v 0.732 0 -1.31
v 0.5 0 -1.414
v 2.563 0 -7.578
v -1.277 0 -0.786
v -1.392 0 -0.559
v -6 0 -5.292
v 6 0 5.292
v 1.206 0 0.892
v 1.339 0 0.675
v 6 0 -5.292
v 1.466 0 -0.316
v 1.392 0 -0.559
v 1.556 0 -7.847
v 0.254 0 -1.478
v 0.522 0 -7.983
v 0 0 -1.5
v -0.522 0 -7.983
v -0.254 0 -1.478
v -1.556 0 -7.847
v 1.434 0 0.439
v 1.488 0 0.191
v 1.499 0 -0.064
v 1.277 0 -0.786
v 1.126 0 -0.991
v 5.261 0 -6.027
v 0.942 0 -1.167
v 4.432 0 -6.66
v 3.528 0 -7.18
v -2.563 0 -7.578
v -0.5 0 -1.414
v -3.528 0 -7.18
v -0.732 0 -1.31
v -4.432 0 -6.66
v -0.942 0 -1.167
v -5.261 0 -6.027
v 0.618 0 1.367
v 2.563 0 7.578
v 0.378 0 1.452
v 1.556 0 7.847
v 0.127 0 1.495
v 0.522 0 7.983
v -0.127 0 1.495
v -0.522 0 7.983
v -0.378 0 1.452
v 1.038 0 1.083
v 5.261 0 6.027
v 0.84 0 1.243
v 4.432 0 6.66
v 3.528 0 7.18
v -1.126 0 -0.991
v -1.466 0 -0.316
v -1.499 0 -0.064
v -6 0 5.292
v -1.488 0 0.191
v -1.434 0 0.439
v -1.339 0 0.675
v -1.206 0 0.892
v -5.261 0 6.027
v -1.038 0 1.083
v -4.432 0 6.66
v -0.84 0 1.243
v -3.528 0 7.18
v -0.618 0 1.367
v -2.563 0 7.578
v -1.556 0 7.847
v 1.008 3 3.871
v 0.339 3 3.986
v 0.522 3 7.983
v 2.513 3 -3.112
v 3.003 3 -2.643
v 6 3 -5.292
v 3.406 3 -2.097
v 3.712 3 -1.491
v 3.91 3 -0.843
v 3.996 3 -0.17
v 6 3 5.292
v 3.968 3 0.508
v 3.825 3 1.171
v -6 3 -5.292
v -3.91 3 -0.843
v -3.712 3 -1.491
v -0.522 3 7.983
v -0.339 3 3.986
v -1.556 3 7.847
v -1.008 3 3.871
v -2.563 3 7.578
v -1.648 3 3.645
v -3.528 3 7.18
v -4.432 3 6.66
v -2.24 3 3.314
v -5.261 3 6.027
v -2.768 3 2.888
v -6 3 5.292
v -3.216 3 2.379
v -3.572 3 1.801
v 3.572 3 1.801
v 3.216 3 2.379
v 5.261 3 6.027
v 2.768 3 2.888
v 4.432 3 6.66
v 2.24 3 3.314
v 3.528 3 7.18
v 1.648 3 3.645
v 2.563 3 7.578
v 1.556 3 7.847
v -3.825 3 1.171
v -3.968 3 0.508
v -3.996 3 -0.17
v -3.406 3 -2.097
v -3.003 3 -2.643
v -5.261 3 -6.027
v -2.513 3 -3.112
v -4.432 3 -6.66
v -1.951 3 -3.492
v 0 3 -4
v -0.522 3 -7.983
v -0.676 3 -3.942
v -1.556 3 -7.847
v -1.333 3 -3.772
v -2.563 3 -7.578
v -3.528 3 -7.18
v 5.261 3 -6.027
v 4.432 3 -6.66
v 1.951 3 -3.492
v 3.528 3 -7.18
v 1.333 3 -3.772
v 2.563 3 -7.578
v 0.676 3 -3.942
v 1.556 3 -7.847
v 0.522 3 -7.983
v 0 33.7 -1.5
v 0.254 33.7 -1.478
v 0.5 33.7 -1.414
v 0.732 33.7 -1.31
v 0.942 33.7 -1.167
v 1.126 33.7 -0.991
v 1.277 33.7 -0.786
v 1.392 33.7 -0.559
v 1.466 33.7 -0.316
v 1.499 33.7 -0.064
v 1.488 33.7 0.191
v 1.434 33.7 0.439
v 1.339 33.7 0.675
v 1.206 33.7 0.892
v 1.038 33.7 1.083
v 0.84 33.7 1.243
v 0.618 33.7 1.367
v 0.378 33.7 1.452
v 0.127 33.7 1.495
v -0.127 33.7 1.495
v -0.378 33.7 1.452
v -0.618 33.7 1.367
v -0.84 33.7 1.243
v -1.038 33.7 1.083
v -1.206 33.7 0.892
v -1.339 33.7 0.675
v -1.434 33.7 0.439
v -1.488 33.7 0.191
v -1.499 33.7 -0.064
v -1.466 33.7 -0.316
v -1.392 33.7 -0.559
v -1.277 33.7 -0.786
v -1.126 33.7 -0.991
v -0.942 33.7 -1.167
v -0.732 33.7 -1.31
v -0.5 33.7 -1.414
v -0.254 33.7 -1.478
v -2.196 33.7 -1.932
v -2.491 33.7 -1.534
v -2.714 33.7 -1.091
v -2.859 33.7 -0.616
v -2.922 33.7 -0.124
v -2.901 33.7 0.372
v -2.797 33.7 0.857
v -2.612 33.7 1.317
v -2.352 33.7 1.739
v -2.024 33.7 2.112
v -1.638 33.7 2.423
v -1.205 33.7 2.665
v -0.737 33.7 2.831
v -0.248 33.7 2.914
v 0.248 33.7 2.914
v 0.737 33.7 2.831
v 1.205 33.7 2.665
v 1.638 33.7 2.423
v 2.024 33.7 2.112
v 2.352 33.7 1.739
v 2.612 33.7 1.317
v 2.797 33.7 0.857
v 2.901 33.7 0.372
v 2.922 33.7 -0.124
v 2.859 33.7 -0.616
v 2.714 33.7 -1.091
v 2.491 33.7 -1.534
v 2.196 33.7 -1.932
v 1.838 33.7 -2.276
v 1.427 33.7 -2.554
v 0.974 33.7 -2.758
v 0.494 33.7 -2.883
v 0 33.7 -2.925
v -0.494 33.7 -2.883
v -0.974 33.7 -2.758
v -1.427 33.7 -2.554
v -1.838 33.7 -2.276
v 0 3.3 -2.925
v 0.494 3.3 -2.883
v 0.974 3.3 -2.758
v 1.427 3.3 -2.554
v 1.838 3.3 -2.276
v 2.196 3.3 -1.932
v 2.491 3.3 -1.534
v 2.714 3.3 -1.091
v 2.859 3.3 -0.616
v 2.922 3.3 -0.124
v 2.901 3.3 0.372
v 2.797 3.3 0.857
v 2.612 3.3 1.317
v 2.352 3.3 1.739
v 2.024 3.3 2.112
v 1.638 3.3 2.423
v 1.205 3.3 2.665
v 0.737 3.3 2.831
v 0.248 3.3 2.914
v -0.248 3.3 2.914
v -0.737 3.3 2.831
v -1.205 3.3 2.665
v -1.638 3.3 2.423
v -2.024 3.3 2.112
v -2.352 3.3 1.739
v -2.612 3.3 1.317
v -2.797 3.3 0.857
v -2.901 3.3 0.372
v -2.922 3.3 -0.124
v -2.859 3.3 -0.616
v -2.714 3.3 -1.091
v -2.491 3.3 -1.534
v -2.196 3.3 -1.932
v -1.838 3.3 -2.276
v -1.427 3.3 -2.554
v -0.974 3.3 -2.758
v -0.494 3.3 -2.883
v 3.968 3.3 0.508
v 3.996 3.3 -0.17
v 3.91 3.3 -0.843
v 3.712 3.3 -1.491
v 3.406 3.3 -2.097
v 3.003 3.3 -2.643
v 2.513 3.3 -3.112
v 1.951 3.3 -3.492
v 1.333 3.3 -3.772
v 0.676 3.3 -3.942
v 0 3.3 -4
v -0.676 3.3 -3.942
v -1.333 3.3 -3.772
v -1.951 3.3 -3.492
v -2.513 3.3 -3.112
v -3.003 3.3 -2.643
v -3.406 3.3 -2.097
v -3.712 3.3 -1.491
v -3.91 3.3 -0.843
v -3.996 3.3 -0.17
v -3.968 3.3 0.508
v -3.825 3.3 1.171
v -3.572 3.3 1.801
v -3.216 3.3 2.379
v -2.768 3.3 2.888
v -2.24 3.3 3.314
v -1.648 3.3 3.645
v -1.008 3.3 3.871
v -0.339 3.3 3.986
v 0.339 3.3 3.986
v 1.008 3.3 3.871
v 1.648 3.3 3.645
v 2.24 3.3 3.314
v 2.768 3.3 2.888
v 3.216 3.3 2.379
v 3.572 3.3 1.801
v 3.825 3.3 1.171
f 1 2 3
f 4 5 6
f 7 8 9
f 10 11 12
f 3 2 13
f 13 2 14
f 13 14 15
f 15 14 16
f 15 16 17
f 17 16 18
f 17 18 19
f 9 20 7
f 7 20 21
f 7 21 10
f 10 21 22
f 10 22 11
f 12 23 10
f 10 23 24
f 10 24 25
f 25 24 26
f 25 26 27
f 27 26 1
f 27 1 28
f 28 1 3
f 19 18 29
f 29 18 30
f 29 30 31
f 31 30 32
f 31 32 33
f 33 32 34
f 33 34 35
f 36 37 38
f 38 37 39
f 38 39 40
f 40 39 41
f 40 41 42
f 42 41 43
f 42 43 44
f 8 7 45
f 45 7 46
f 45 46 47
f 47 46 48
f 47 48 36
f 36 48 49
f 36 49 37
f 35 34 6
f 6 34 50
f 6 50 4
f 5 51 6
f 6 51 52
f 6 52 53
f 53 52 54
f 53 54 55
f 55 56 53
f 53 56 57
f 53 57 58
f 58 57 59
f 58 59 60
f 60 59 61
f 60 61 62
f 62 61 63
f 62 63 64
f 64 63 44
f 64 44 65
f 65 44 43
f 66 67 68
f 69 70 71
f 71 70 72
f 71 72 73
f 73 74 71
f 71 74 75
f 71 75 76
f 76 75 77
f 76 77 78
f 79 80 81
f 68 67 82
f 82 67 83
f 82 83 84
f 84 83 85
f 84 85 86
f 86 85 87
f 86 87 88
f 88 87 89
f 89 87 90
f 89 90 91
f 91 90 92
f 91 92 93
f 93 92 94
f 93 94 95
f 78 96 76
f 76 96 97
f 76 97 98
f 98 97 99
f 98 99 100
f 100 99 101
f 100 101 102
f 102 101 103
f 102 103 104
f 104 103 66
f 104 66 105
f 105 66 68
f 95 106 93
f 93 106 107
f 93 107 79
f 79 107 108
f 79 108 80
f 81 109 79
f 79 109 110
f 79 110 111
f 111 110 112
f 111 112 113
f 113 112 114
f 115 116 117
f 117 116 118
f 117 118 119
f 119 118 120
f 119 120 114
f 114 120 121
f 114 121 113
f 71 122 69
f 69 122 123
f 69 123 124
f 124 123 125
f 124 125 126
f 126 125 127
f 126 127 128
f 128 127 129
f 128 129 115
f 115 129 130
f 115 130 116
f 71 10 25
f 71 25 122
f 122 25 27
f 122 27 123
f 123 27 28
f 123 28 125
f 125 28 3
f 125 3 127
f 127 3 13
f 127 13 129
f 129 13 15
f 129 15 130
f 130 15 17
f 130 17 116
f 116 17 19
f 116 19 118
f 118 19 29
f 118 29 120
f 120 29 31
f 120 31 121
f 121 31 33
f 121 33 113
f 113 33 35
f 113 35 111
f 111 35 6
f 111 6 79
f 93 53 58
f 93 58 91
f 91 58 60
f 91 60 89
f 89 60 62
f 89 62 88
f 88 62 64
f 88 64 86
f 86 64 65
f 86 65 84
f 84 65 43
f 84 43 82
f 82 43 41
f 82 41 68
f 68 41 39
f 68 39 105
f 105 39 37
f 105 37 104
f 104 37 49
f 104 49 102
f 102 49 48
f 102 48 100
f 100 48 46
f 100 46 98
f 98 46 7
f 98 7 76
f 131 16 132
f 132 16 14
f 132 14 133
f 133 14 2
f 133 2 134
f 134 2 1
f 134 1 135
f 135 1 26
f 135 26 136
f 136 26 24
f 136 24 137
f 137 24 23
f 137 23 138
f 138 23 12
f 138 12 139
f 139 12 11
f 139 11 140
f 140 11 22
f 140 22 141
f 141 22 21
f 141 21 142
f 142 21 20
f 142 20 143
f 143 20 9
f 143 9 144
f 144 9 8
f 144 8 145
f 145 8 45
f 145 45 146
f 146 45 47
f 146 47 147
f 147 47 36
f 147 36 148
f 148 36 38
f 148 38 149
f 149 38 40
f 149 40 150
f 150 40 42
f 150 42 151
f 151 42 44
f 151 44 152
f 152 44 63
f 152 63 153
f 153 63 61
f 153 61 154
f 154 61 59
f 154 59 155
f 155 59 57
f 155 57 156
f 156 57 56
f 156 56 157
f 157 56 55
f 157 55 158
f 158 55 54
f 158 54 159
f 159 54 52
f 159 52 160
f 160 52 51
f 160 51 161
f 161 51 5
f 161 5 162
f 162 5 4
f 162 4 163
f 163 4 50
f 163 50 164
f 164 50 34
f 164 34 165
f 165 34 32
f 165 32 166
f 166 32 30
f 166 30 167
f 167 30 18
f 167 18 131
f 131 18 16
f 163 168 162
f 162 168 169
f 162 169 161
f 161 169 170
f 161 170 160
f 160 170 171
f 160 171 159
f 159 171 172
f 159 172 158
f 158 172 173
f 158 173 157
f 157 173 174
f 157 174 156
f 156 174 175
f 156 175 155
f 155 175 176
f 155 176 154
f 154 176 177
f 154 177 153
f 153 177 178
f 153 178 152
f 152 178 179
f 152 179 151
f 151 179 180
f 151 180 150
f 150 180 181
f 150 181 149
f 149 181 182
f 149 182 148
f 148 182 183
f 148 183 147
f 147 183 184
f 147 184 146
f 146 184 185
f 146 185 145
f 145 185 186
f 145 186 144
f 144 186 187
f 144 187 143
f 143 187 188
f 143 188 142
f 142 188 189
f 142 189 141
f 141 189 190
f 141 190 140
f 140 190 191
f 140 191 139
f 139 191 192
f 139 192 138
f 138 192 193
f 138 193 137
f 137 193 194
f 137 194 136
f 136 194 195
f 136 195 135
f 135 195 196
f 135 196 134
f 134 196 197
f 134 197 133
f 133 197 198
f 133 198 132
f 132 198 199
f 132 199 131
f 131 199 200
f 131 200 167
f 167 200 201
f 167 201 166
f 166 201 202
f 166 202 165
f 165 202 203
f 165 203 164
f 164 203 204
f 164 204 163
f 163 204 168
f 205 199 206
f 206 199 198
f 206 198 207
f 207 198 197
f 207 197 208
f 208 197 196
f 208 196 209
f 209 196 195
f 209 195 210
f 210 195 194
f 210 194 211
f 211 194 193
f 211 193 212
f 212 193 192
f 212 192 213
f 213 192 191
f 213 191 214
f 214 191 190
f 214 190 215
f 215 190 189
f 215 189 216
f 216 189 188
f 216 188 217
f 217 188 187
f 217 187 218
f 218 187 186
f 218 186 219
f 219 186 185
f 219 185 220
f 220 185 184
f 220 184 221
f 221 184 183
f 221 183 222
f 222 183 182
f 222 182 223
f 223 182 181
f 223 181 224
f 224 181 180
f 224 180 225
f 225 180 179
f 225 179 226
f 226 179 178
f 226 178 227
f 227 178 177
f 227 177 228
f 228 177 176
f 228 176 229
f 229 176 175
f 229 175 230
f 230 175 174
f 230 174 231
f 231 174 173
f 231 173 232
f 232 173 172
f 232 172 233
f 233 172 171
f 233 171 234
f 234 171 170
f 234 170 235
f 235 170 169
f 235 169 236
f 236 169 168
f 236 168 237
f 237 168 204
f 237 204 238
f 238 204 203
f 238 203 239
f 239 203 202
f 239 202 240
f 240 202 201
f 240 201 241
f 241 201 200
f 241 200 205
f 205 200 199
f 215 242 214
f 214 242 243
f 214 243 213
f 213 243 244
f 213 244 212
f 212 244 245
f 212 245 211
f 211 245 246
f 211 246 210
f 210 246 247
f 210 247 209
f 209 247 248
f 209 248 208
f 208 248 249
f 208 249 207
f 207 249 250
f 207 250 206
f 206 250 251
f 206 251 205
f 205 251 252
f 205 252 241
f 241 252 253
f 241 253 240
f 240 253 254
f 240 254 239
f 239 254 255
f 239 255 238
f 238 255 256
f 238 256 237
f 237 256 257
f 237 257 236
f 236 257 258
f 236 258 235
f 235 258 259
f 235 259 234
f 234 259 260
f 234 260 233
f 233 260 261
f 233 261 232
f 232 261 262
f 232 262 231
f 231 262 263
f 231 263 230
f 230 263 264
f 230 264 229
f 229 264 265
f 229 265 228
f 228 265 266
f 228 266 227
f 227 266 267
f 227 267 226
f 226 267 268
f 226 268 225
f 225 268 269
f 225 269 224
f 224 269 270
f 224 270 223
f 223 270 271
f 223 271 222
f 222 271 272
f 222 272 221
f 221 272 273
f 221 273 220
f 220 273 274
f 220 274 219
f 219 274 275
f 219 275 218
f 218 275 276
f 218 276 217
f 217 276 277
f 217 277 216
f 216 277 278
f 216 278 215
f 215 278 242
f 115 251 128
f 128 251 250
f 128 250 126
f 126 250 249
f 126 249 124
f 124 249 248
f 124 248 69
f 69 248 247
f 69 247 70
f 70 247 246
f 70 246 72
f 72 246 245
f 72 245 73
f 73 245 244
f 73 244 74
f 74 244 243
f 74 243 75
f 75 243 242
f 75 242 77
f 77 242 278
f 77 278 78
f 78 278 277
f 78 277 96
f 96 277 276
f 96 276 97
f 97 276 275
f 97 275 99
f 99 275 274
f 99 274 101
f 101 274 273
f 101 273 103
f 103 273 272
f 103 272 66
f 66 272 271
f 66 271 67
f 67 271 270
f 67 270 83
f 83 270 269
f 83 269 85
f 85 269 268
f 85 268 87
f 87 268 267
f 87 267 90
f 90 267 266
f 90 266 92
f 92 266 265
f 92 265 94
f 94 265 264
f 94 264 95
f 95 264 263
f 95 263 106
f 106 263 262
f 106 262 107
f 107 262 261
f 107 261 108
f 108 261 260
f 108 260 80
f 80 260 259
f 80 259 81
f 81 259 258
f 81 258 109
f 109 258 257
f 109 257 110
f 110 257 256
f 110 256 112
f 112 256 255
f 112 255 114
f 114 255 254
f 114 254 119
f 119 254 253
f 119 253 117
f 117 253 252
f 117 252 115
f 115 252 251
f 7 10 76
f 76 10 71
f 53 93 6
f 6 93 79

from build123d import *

# Parameters (mm, degrees)
ENL_V_MAT_EXTRU_1_REACH = 37.548


with BuildPart() as part:
    # Esquisse1 → Révolution1 (revolve)
    with BuildSketch(Plane.XY, mode=Mode.PRIVATE) as r_volution1_sk:
        Polygon((-1.5, 0), (-1.5, 33.7), (-2.925, 33.7), (-2.925, 3.3), (-4, 3.3), (-4, 3), (-8, 3), (-8, 0), align=None)
    revolve(r_volution1_sk.sketch.rotate(Axis((0, -3.664645975, 0), (0, 1, 0)), 270), axis=Axis((0, -3.664645975, 0), (0, 1, 0)))

    # Esquisse2 → Enlèv. mat.-Extru.1 (cut, up to next)
    with BuildSketch(Plane.XZ, mode=Mode.PRIVATE) as enl_v_mat_extru_1_sk1:
        with BuildLine():
            ThreePointArc((8, 0), (7.483314774, 2.828427125), (6, 5.291502622))
            Line((6, 5.291502622), (6, -5.291502622))
            ThreePointArc((6, -5.291502622), (7.483314774, -2.828427125), (8, 0))
        make_face()
    enl_v_mat_extru_1_tool1 = extrude(enl_v_mat_extru_1_sk1.sketch, amount=-ENL_V_MAT_EXTRU_1_REACH, mode=Mode.PRIVATE) & part.part
    # Esquisse2 → Enlèv. mat.-Extru.1 (cut, up to next)
    with BuildSketch(Plane.XZ, mode=Mode.PRIVATE) as enl_v_mat_extru_1_sk2:
        with BuildLine():
            Line((-6, -5.291502622), (-6, 5.291502622))
            ThreePointArc((-6, 5.291502622), (-8, 0), (-6, -5.291502622))
        make_face()
    enl_v_mat_extru_1_tool2 = extrude(enl_v_mat_extru_1_sk2.sketch, amount=-ENL_V_MAT_EXTRU_1_REACH, mode=Mode.PRIVATE) & part.part
    add(enl_v_mat_extru_1_tool1.solids().sort_by_distance((6.809243, 0, 0))[0], mode=Mode.SUBTRACT)
    add(enl_v_mat_extru_1_tool2.solids().sort_by_distance((-6.809243, 0, 0))[0], mode=Mode.SUBTRACT)


solid = part.part
